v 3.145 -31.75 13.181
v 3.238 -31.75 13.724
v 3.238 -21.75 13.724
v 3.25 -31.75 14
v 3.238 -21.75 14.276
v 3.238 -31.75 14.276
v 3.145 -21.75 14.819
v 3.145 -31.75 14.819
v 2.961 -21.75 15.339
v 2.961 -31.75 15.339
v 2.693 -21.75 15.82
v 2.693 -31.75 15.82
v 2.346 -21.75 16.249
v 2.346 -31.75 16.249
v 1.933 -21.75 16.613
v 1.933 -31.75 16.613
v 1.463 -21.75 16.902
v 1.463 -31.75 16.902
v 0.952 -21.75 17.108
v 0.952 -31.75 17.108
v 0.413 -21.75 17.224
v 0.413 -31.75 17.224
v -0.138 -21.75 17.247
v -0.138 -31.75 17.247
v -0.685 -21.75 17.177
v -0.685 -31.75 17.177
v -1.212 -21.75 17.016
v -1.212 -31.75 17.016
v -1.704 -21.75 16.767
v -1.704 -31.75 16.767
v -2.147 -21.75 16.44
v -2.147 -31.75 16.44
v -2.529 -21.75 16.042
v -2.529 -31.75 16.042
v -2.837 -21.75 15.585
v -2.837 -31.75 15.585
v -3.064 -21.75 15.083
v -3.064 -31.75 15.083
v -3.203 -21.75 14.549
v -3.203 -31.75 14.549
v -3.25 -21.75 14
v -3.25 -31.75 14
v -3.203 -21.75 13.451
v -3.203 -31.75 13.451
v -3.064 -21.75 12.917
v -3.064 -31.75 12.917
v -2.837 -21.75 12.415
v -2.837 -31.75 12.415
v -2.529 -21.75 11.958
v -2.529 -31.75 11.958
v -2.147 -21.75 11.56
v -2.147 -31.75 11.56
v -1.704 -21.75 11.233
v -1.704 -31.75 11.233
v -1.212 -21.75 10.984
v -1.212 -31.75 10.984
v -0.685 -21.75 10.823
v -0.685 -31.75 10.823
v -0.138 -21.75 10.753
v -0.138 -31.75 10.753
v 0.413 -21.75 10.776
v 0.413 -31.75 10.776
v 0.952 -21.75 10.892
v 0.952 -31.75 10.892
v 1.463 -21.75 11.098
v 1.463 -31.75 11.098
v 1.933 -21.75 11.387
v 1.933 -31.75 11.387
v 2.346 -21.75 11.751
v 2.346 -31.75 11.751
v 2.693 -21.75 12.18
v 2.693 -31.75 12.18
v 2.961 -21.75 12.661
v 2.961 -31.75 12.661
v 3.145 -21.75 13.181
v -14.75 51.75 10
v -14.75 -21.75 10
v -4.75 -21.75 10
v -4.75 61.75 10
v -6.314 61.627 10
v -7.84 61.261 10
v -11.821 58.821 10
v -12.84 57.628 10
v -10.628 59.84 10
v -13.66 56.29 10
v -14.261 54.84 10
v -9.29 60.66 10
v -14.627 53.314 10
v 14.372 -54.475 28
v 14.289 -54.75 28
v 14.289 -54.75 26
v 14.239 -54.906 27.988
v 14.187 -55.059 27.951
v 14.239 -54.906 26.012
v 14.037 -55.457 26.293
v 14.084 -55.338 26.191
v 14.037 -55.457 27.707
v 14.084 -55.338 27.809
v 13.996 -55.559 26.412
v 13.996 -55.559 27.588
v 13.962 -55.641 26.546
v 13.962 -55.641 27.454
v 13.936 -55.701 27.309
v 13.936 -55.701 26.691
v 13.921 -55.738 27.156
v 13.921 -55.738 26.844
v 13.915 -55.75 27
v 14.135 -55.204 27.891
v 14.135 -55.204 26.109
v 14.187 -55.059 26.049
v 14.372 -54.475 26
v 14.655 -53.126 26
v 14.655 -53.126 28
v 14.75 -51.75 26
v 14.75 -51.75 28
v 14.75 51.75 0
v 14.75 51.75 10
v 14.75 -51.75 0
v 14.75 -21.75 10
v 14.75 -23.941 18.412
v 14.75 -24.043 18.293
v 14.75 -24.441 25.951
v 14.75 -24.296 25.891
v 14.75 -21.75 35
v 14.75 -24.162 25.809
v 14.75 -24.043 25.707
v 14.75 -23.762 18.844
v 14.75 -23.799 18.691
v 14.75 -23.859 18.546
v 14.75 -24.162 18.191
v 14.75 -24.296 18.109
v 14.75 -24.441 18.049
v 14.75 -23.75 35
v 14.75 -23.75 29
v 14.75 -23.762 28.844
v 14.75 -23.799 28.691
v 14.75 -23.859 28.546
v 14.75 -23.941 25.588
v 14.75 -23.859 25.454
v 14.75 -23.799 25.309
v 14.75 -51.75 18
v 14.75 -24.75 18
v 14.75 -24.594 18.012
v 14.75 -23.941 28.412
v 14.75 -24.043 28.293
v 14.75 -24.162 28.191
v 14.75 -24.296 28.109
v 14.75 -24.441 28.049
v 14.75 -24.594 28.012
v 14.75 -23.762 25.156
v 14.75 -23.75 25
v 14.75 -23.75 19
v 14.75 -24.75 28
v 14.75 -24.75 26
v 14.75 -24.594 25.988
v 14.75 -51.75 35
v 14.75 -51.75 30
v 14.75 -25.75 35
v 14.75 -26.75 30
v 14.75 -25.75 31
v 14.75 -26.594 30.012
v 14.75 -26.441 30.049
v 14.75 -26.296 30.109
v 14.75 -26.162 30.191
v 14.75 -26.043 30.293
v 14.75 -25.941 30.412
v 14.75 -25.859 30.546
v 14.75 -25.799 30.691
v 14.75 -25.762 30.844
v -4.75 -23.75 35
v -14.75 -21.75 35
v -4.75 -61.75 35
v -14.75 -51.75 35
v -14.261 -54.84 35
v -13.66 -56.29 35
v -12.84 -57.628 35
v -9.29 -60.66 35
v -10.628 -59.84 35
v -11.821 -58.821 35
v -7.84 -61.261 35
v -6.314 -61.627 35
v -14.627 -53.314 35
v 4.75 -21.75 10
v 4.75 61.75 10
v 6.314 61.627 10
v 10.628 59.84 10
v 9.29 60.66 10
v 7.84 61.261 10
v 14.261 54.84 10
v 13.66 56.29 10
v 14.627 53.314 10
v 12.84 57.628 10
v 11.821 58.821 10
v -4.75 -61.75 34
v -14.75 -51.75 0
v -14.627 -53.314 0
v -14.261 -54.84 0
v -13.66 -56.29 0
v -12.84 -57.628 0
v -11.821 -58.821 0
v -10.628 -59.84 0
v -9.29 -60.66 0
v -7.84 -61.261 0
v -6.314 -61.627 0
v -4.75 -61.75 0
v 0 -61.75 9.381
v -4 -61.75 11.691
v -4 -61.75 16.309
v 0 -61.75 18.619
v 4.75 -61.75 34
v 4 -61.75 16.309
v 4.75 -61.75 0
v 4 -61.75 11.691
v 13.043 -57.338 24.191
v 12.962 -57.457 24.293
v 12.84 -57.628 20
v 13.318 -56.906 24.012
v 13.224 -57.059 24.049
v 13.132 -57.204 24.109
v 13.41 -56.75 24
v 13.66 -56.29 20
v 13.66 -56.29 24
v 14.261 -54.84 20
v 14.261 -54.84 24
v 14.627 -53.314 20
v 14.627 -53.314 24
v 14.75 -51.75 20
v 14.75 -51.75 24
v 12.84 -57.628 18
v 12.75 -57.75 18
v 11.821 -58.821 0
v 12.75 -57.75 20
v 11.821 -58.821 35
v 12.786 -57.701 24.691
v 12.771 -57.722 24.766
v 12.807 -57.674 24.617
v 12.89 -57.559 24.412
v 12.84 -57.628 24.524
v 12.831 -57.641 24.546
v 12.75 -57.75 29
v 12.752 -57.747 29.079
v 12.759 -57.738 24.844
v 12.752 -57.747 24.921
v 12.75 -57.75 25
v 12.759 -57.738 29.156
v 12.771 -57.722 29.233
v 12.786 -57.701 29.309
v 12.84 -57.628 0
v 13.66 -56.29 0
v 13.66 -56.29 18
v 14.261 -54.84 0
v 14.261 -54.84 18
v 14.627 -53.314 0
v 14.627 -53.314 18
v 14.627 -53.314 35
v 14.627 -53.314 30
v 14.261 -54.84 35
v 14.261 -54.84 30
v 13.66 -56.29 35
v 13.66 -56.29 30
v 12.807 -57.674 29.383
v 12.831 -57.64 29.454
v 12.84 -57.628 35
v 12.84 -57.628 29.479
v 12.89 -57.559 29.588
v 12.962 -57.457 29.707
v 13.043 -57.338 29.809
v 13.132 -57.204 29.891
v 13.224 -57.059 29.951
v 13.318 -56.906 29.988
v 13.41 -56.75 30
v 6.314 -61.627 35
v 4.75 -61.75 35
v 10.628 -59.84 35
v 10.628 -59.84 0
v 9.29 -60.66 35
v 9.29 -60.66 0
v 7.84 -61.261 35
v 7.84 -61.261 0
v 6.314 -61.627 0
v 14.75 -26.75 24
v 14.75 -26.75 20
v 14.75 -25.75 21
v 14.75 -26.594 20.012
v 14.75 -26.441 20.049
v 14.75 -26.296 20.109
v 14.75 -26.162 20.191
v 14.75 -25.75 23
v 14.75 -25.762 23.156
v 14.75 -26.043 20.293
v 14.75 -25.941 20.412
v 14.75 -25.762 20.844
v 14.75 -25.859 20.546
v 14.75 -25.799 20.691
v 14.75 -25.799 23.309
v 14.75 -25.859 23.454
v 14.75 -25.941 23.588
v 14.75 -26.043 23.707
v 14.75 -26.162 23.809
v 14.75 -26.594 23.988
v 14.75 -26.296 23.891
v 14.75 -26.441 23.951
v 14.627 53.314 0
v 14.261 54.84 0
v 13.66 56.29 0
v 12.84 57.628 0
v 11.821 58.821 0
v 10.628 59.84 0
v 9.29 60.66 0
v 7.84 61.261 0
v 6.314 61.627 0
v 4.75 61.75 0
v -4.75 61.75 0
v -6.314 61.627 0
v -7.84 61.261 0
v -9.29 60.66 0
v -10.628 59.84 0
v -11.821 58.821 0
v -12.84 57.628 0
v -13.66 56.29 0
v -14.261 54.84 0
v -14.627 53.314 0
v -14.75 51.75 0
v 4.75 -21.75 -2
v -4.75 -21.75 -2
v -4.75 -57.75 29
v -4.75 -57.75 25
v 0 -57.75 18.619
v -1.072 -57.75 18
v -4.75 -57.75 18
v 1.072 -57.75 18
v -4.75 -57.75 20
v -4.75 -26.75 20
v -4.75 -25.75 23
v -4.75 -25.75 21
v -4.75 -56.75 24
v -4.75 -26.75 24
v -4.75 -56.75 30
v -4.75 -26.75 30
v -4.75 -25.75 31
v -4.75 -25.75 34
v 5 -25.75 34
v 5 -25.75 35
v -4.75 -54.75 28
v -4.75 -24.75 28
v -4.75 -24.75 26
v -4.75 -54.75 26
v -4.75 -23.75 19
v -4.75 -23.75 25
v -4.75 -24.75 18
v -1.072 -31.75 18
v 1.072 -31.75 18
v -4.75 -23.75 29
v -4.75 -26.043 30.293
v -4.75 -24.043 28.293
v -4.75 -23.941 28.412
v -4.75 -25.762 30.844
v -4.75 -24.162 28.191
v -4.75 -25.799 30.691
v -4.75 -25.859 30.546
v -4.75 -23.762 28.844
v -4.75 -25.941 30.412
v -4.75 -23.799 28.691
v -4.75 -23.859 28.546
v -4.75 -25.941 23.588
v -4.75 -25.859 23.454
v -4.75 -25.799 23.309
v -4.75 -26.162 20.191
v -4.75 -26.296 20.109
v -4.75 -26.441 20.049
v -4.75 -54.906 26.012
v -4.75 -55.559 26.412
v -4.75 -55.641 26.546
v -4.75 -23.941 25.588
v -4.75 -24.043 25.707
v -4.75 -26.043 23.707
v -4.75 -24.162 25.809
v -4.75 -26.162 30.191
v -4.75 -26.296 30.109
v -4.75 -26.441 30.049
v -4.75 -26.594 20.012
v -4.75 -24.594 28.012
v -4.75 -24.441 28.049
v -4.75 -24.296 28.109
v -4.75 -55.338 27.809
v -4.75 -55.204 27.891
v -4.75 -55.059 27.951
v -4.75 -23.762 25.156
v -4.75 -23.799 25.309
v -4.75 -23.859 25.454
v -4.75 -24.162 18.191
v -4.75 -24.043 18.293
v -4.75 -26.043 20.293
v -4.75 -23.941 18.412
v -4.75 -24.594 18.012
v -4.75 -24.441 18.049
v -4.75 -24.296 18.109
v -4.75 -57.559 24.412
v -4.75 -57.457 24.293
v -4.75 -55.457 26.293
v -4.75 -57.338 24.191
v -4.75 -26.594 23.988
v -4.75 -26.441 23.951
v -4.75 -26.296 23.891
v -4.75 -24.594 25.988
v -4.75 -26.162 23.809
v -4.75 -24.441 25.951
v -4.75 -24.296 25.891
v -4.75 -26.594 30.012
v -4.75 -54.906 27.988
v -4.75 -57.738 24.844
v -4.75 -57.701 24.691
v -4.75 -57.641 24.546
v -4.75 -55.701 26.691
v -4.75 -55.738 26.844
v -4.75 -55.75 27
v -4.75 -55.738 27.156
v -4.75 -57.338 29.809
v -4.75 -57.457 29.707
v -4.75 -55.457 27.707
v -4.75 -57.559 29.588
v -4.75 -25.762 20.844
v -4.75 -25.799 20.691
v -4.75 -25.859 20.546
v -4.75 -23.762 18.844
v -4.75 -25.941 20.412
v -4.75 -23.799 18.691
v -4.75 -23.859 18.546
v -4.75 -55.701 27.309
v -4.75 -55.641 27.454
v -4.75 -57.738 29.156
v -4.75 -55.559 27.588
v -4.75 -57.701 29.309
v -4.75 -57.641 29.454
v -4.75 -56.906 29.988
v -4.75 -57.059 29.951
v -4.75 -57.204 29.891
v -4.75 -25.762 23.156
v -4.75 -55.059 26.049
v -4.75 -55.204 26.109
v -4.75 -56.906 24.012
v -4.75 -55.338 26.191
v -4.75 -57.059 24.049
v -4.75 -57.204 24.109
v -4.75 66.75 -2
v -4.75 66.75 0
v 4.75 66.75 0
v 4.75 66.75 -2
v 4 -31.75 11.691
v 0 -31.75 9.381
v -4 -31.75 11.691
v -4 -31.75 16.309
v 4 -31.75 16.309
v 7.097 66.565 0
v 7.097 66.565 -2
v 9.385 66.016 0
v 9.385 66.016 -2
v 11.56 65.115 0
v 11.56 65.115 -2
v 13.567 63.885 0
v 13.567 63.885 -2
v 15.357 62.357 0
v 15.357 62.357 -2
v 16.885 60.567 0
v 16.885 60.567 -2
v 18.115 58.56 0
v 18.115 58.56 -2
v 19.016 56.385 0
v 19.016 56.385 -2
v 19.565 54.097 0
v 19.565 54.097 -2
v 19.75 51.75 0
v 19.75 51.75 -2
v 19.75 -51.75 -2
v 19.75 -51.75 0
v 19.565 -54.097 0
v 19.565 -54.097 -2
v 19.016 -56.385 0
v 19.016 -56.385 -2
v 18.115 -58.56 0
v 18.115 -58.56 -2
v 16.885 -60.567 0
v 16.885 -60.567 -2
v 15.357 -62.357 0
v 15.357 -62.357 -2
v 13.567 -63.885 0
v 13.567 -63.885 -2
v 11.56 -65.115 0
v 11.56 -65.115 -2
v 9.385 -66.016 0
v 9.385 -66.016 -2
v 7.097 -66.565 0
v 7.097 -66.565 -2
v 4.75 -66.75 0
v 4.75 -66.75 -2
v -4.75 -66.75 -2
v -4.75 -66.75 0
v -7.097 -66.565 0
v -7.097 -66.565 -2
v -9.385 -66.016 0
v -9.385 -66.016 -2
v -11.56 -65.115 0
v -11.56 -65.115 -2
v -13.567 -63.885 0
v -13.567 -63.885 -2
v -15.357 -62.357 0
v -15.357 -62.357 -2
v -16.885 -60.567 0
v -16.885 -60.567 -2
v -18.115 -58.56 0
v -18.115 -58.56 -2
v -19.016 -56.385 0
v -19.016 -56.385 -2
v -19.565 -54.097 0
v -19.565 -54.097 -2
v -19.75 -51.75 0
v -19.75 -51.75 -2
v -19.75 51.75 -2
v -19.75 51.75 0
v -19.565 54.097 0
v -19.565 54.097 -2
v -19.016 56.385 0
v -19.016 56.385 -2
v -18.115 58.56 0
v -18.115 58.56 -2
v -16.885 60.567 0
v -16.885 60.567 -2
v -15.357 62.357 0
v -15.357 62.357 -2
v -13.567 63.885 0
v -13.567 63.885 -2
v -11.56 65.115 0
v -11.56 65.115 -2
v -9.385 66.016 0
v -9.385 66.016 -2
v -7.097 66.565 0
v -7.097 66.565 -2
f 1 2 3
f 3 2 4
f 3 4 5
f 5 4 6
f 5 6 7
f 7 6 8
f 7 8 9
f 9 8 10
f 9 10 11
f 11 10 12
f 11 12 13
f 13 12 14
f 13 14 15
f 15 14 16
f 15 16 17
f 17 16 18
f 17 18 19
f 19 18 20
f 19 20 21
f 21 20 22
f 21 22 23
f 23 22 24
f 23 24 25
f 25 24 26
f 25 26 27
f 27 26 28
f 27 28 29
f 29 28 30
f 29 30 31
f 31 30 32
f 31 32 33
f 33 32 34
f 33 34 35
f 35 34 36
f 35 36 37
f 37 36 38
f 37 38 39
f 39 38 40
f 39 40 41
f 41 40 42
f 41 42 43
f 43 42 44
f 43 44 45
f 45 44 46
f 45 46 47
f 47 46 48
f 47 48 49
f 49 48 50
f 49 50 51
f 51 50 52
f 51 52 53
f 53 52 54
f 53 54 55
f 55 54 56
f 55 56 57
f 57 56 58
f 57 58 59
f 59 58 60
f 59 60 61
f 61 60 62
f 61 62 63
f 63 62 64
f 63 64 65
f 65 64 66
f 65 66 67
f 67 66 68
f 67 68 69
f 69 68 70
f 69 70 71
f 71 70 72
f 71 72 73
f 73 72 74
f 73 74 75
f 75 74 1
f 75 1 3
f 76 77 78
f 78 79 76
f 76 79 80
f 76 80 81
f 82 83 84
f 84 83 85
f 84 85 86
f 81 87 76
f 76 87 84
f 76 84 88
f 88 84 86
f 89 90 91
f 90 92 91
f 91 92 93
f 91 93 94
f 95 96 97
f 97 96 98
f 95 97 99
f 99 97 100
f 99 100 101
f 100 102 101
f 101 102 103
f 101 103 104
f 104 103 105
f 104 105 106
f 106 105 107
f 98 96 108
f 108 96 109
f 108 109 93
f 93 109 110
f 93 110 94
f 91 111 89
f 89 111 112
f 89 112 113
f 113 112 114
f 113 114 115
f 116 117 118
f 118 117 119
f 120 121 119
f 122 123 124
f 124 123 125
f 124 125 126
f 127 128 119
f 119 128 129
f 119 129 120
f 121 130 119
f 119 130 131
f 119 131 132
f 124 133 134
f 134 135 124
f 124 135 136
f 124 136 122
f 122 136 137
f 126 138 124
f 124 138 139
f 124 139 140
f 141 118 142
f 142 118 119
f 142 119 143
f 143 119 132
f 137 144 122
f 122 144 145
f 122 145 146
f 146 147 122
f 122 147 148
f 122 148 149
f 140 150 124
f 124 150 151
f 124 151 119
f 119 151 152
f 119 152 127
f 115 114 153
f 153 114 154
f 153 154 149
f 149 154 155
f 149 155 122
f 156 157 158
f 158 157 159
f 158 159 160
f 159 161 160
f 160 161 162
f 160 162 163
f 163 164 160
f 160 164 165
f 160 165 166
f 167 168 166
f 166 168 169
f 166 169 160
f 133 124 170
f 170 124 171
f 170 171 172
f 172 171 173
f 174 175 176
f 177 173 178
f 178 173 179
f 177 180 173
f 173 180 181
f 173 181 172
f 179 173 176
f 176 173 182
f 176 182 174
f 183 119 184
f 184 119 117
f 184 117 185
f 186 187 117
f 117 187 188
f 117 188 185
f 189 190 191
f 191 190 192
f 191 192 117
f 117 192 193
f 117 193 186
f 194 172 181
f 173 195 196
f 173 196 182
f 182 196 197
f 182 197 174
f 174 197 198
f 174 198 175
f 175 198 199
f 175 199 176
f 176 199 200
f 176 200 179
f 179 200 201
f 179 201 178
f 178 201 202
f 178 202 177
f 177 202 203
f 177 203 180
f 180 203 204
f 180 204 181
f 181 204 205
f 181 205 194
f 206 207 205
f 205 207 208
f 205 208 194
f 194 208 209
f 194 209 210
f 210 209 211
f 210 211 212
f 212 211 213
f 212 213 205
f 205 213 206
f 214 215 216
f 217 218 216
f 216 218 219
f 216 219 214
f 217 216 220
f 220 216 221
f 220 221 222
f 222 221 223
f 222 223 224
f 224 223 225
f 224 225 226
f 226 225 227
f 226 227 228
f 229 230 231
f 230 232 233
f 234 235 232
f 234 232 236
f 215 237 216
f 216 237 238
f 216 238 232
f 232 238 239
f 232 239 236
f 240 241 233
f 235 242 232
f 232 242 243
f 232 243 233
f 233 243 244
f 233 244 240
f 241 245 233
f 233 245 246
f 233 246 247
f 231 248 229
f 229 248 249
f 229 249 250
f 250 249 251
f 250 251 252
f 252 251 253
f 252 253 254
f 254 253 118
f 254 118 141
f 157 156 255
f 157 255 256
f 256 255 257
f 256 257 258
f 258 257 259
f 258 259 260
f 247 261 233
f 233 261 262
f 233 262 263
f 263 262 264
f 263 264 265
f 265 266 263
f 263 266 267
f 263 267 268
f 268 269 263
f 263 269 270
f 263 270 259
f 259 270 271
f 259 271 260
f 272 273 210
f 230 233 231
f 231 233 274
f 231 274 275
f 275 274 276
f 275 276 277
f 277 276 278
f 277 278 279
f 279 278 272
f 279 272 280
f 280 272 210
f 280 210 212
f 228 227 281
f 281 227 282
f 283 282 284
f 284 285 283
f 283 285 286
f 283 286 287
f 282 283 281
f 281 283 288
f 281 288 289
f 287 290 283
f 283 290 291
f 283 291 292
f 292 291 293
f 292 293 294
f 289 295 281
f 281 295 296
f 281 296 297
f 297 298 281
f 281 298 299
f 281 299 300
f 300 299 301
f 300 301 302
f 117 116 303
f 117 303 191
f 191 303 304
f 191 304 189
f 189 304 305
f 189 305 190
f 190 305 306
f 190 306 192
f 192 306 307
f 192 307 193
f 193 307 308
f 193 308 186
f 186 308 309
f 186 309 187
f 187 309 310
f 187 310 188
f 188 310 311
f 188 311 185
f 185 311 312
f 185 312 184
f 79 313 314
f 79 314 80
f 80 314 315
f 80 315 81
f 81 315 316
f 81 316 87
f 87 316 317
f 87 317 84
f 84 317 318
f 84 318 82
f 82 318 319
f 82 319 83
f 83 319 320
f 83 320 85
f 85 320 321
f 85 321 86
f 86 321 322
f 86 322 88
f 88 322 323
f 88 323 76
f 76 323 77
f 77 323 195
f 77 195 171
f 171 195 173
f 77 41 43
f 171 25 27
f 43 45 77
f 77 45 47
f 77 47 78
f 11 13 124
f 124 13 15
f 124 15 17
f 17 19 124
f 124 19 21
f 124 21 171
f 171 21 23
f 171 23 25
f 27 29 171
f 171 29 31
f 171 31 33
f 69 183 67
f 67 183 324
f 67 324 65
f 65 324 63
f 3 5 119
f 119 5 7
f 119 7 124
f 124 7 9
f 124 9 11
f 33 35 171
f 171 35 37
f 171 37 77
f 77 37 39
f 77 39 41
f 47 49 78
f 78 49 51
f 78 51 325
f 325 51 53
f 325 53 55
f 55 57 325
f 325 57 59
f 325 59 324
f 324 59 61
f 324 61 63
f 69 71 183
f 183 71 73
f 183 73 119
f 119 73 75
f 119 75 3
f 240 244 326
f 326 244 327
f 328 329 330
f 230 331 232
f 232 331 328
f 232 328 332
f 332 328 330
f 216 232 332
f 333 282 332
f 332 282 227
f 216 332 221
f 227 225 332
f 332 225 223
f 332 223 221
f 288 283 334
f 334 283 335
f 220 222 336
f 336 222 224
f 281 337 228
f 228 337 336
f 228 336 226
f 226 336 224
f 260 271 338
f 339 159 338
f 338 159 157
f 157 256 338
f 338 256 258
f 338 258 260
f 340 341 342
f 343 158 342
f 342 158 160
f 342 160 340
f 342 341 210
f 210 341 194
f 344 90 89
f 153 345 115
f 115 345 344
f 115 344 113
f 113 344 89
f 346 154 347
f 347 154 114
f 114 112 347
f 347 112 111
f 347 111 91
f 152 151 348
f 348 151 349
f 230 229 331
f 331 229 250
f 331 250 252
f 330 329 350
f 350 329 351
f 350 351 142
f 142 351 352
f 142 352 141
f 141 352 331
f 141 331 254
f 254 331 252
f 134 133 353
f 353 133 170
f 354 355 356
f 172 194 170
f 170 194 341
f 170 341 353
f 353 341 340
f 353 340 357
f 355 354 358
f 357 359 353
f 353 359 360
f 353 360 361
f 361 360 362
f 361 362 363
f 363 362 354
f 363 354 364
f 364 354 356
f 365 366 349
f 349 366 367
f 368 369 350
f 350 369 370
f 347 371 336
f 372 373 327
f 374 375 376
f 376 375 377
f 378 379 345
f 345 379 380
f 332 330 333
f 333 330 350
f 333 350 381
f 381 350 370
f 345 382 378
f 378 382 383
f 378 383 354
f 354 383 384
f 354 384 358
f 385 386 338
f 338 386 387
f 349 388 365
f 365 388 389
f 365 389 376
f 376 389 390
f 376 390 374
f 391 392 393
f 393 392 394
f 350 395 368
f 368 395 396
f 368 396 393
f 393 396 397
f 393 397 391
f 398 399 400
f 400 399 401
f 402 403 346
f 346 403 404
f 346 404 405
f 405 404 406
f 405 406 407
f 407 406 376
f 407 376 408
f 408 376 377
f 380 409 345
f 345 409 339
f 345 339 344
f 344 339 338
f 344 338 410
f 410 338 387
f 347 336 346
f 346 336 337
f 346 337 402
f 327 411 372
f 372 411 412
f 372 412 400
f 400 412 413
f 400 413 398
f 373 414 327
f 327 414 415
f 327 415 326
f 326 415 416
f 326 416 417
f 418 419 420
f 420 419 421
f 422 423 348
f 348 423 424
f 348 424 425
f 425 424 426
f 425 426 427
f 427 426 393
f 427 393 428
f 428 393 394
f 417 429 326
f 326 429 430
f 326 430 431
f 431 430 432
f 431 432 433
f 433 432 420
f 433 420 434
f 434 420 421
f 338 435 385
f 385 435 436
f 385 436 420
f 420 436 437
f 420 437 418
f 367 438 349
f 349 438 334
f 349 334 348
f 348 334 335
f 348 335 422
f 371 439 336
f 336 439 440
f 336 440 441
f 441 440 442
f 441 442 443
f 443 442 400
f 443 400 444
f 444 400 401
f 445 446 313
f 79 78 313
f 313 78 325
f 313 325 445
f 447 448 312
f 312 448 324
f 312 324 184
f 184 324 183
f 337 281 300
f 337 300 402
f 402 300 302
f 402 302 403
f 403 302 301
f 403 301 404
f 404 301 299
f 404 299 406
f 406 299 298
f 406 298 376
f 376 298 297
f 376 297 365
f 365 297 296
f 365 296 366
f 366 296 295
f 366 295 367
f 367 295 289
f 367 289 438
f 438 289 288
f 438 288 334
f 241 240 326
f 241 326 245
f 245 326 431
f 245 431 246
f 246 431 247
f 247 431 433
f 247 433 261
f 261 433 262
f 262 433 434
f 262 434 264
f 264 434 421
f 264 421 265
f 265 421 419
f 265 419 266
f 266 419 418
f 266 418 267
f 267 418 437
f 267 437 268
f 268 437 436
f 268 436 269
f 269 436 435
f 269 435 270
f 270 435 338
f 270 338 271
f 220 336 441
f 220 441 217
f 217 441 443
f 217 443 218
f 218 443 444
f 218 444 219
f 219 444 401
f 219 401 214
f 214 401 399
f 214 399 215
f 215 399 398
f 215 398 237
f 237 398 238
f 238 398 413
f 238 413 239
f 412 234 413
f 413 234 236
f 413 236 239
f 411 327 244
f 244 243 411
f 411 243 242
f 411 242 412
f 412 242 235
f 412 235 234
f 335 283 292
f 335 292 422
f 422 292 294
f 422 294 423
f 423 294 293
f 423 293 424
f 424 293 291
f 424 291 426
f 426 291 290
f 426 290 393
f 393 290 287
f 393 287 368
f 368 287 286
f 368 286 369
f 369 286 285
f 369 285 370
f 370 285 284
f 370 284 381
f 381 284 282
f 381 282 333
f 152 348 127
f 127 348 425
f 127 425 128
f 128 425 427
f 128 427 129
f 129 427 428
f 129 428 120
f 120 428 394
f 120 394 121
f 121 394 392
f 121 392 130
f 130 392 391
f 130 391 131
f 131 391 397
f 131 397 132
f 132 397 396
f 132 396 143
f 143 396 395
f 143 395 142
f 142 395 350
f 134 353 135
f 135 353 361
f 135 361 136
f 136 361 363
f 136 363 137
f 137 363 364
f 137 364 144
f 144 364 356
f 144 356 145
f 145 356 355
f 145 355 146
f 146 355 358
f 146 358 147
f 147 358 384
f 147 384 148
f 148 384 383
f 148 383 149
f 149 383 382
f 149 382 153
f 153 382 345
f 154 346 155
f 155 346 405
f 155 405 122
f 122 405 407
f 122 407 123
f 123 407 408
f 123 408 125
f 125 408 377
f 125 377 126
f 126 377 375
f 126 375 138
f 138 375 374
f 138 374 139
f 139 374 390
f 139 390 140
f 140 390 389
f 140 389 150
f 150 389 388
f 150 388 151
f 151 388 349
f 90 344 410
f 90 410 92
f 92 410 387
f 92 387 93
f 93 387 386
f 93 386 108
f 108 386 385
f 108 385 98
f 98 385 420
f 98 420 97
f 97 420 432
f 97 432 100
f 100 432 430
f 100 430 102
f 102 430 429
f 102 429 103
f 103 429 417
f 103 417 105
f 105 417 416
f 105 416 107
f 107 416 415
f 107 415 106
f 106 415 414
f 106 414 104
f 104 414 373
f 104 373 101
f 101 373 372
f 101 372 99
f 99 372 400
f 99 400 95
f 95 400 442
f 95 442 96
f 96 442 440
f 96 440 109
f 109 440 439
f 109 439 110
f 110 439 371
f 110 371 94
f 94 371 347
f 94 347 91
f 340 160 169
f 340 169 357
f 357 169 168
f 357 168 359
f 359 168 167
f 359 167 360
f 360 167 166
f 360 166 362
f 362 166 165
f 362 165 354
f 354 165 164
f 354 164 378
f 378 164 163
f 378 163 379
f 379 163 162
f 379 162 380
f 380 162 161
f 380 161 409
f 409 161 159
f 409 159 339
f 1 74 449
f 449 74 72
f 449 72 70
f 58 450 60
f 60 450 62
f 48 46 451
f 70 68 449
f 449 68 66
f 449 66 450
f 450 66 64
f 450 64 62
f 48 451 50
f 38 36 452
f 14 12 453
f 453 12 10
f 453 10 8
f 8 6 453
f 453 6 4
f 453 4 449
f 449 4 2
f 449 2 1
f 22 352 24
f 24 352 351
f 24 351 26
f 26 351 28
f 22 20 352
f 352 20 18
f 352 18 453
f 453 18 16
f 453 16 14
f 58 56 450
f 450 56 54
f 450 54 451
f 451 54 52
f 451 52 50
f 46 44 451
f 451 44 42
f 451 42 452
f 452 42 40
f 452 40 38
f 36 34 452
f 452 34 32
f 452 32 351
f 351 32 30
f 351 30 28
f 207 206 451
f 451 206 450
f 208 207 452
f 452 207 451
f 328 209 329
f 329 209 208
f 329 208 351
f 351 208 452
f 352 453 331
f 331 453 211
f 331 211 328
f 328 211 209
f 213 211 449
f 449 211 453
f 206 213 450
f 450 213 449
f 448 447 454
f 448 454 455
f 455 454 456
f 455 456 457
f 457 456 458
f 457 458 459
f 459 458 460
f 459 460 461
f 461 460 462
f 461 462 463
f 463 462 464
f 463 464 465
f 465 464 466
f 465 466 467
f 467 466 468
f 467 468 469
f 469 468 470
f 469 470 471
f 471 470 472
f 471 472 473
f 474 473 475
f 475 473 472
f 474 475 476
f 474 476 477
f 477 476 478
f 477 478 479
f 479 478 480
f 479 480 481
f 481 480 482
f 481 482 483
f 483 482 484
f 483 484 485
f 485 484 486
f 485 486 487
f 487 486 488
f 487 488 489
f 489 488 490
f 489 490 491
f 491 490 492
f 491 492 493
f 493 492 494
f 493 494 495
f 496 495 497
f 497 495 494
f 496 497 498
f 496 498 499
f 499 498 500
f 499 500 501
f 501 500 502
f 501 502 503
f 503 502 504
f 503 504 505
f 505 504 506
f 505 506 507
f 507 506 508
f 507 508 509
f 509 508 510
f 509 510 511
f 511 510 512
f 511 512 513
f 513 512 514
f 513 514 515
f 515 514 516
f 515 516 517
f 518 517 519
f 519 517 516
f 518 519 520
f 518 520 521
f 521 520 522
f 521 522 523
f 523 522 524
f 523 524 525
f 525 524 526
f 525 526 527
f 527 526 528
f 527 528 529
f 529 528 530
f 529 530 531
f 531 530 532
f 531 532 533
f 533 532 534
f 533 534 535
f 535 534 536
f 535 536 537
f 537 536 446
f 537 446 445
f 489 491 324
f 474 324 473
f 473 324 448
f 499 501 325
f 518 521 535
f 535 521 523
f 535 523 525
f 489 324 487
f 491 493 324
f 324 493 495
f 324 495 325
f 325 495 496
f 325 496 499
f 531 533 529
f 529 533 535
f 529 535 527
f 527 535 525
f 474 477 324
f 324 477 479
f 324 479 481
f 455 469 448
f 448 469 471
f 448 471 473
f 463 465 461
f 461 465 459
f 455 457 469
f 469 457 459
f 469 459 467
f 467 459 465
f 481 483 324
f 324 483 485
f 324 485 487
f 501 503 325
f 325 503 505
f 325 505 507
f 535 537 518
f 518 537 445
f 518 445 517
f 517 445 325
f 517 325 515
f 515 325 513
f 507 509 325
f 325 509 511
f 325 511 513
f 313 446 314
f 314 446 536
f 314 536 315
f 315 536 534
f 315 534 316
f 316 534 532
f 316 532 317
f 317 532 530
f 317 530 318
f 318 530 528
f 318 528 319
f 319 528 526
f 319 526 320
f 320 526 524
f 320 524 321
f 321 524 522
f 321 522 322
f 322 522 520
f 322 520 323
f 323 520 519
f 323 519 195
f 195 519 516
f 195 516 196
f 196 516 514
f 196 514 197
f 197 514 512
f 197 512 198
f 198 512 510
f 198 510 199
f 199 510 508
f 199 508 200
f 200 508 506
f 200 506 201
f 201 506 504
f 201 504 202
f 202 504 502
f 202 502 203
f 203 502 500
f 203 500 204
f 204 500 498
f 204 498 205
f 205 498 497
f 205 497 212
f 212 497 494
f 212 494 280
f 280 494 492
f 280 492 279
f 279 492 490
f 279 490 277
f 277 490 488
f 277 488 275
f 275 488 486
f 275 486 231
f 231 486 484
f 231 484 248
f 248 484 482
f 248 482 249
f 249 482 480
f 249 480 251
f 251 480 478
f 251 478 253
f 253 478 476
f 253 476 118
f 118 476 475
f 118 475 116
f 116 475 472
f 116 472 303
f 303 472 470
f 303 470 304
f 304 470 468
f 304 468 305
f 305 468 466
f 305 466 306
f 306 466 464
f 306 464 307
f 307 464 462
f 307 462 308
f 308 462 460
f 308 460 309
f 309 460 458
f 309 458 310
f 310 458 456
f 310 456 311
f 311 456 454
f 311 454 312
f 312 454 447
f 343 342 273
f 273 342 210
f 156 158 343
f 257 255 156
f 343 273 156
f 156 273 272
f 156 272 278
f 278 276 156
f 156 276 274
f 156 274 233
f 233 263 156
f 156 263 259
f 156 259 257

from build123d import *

# Parameters (mm, degrees)
BOSS_EXTRUDE1_DEPTH          = 10
BOSS_EXTRUDE2_DEPTH          = 25
CUT_EXTRUDE_THIN1_DEPTH      = 77.865548199
CUT_EXTRUDE_THIN1_DEPTH_BACK = 19.5
SKETCH5_W                    = 9.5
SKETCH5_H                    = 83.5
CUT_EXTRUDE1_DEPTH           = 25
FILLET2_R                    = 1
SKETCH8_R                    = 3.25
CUT_EXTRUDE2_DEPTH           = 54
CUT_EXTRUDE3_DEPTH           = 30
BOSS_EXTRUDE5_START          = 2
BOSS_EXTRUDE5_DEPTH          = 2
BOSS_EXTRUDE6_DEPTH          = 1


with BuildPart() as part:
    # Sketch1 → Boss-Extrude1 (new body)
    with BuildSketch(Plane.XY):
        with BuildLine():
            Line((-4.75, -61.75), (4.75, -61.75))
            ThreePointArc((4.75, -61.75), (11.821067812, -58.821067812), (14.75, -51.75))
            Line((14.75, -51.75), (14.75, 51.75))
            ThreePointArc((14.75, 51.75), (11.821067812, 58.821067812), (4.75, 61.75))
            Line((4.75, 61.75), (-4.75, 61.75))
            ThreePointArc((-4.75, 61.75), (-11.821067812, 58.821067812), (-14.75, 51.75))
            Line((-14.75, 51.75), (-14.75, -51.75))
            ThreePointArc((-14.75, -51.75), (-11.821067812, -58.821067812), (-4.75, -61.75))
        make_face()
    extrude(amount=BOSS_EXTRUDE1_DEPTH)

    # Sketch3 → Boss-Extrude2 (add)
    with BuildSketch(Plane.XY.offset(10)):
        with BuildLine():
            Line((14.75, -51.75), (14.75, -21.75))
            Line((14.75, -21.75), (-14.75, -21.75))
            Line((-14.75, -21.75), (-14.75, -51.75))
            ThreePointArc((-14.75, -51.75), (-11.821067812, -58.821067812), (-4.75, -61.75))
            Line((-4.75, -61.75), (4.75, -61.75))
            ThreePointArc((4.75, -61.75), (11.821067812, -58.821067812), (14.75, -51.75))
        make_face()
    extrude(amount=BOSS_EXTRUDE2_DEPTH)

    # Sketch4 → Cut-Extrude-Thin1 (cut, two sides: drawn at the far end of the back side and taken through both)
    with BuildSketch(Plane(origin=(14.75, 0, 0), x_dir=(0, 0, -1), z_dir=(1, 0, 0)).offset(-CUT_EXTRUDE_THIN1_DEPTH_BACK)):
        Polygon((-34, -74.39853969), (-34, -25.75), (-30, -25.75), (-30, -57.75), (-24, -57.75), (-24, -25.75), (-20, -25.75), (-20, -57.75), (-18, -57.75), (-18, -23.75), (-26, -23.75), (-26, -55.75), (-28, -55.75), (-28, -23.75), (-36, -23.75), (-36, -74.39853969), align=None)
    extrude(amount=CUT_EXTRUDE_THIN1_DEPTH + CUT_EXTRUDE_THIN1_DEPTH_BACK, mode=Mode.SUBTRACT)

    # Sketch5 → Cut-Extrude1 (cut)
    with BuildSketch(Plane(origin=(0, 0, 0), x_dir=(-1, 0, 0), z_dir=(0, 0, -1))):
        with Locations((0, 20)):
            Rectangle(SKETCH5_W, SKETCH5_H)
    extrude(amount=-CUT_EXTRUDE1_DEPTH, mode=Mode.SUBTRACT)

    # Fillet2
    fillet2_edges = [part.edges().sort_by_distance(p)[0] for p in [
        (5, -25.75, 24),
        (4, -57.75, 30),
        (4, -57.75, 24),
        (5, -25.75, 20),
        (5, -23.75, 18),
        (5, -23.75, 28),
        (5, -23.75, 26),
        (4.582575695, -55.75, 26),
        (4.582575695, -55.75, 28),
        (5, -25.75, 30),
    ]]
    fillet(fillet2_edges, radius=FILLET2_R - 0.0001)  # a hair under: the kernel refuses the full size

    # Sketch8 → Cut-Extrude2 (cut)
    with BuildSketch(Plane(origin=(0, -21.75, 0), x_dir=(1, 0, 0), z_dir=(0, 1, 0))):
        with Locations(Location((0, -14, 0), (0, 0, 180))):
            Circle(SKETCH8_R)
    extrude(amount=-CUT_EXTRUDE2_DEPTH, mode=Mode.SUBTRACT)

    # Sketch9 → Cut-Extrude3 (cut)
    with BuildSketch(Plane(origin=(0, -61.75, 0), x_dir=(-1, 0, 0), z_dir=(0, -1, 0))):
        Polygon((0, -9.381197846), (-4, -11.690598923), (-4, -16.309401077), (0, -18.618802154), (4, -16.309401077), (4, -11.690598923), align=None)
    extrude(amount=-CUT_EXTRUDE3_DEPTH, mode=Mode.SUBTRACT)

    # Sketch11 → Boss-Extrude5 (add)
    with BuildSketch(Plane(origin=(0, 0, 0), x_dir=(-1, 0, 0), z_dir=(0, 0, -1)).offset(BOSS_EXTRUDE5_START)):
        with BuildLine():
            Line((-4.75, -66.75), (4.75, -66.75))
            ThreePointArc((4.75, -66.75), (15.356601718, -62.356601718), (19.75, -51.75))
            Line((19.75, -51.75), (19.75, 51.75))
            ThreePointArc((19.75, 51.75), (15.356601718, 62.356601718), (4.75, 66.75))
            Line((4.75, 66.75), (4.75, 61.75))
            ThreePointArc((4.75, 61.75), (11.821067812, 58.821067812), (14.75, 51.75))
            Line((14.75, 51.75), (14.75, -51.75))
            ThreePointArc((14.75, -51.75), (11.821067812, -58.821067812), (4.75, -61.75))
            Line((4.75, -61.75), (-4.75, -61.75))
            ThreePointArc((-4.75, -61.75), (-11.821067812, -58.821067812), (-14.75, -51.75))
            Line((-14.75, -51.75), (-14.75, 51.75))
            ThreePointArc((-14.75, 51.75), (-11.821067812, 58.821067812), (-4.75, 61.75))
            Line((-4.75, 61.75), (-4.75, 66.75))
            ThreePointArc((-4.75, 66.75), (-15.356601718, 62.356601718), (-19.75, 51.75))
            Line((-19.75, 51.75), (-19.75, -51.75))
            ThreePointArc((-19.75, -51.75), (-15.356601718, -62.356601718), (-4.75, -66.75))
        make_face()
        with BuildLine():
            ThreePointArc((14.75, 51.75), (11.821067812, 58.821067812), (4.75, 61.75))
            Line((4.75, 61.75), (4.75, -21.75))
            Line((4.75, -21.75), (-4.75, -21.75))
            Line((-4.75, -21.75), (-4.75, 61.75))
            ThreePointArc((-4.75, 61.75), (-11.821067812, 58.821067812), (-14.75, 51.75))
            Line((-14.75, 51.75), (-14.75, -51.75))
            ThreePointArc((-14.75, -51.75), (-11.821067812, -58.821067812), (-4.75, -61.75))
            Line((-4.75, -61.75), (4.75, -61.75))
            ThreePointArc((4.75, -61.75), (11.821067812, -58.821067812), (14.75, -51.75))
            Line((14.75, -51.75), (14.75, 51.75))
        make_face()
    extrude(amount=-BOSS_EXTRUDE5_DEPTH)

    # Sketch12 → Boss-Extrude6 (add)
    with BuildSketch(Plane.XY.offset(34)):
        with BuildLine():
            Line((5, -25.75), (4.75, -61.75))
            ThreePointArc((4.75, -61.75), (11.821067812, -58.821067812), (14.75, -51.75))
            Line((14.75, -51.75), (14.75, -25.75))
            Line((14.75, -25.75), (5, -25.75))
        make_face()
    extrude(amount=BOSS_EXTRUDE6_DEPTH)


solid = part.part
